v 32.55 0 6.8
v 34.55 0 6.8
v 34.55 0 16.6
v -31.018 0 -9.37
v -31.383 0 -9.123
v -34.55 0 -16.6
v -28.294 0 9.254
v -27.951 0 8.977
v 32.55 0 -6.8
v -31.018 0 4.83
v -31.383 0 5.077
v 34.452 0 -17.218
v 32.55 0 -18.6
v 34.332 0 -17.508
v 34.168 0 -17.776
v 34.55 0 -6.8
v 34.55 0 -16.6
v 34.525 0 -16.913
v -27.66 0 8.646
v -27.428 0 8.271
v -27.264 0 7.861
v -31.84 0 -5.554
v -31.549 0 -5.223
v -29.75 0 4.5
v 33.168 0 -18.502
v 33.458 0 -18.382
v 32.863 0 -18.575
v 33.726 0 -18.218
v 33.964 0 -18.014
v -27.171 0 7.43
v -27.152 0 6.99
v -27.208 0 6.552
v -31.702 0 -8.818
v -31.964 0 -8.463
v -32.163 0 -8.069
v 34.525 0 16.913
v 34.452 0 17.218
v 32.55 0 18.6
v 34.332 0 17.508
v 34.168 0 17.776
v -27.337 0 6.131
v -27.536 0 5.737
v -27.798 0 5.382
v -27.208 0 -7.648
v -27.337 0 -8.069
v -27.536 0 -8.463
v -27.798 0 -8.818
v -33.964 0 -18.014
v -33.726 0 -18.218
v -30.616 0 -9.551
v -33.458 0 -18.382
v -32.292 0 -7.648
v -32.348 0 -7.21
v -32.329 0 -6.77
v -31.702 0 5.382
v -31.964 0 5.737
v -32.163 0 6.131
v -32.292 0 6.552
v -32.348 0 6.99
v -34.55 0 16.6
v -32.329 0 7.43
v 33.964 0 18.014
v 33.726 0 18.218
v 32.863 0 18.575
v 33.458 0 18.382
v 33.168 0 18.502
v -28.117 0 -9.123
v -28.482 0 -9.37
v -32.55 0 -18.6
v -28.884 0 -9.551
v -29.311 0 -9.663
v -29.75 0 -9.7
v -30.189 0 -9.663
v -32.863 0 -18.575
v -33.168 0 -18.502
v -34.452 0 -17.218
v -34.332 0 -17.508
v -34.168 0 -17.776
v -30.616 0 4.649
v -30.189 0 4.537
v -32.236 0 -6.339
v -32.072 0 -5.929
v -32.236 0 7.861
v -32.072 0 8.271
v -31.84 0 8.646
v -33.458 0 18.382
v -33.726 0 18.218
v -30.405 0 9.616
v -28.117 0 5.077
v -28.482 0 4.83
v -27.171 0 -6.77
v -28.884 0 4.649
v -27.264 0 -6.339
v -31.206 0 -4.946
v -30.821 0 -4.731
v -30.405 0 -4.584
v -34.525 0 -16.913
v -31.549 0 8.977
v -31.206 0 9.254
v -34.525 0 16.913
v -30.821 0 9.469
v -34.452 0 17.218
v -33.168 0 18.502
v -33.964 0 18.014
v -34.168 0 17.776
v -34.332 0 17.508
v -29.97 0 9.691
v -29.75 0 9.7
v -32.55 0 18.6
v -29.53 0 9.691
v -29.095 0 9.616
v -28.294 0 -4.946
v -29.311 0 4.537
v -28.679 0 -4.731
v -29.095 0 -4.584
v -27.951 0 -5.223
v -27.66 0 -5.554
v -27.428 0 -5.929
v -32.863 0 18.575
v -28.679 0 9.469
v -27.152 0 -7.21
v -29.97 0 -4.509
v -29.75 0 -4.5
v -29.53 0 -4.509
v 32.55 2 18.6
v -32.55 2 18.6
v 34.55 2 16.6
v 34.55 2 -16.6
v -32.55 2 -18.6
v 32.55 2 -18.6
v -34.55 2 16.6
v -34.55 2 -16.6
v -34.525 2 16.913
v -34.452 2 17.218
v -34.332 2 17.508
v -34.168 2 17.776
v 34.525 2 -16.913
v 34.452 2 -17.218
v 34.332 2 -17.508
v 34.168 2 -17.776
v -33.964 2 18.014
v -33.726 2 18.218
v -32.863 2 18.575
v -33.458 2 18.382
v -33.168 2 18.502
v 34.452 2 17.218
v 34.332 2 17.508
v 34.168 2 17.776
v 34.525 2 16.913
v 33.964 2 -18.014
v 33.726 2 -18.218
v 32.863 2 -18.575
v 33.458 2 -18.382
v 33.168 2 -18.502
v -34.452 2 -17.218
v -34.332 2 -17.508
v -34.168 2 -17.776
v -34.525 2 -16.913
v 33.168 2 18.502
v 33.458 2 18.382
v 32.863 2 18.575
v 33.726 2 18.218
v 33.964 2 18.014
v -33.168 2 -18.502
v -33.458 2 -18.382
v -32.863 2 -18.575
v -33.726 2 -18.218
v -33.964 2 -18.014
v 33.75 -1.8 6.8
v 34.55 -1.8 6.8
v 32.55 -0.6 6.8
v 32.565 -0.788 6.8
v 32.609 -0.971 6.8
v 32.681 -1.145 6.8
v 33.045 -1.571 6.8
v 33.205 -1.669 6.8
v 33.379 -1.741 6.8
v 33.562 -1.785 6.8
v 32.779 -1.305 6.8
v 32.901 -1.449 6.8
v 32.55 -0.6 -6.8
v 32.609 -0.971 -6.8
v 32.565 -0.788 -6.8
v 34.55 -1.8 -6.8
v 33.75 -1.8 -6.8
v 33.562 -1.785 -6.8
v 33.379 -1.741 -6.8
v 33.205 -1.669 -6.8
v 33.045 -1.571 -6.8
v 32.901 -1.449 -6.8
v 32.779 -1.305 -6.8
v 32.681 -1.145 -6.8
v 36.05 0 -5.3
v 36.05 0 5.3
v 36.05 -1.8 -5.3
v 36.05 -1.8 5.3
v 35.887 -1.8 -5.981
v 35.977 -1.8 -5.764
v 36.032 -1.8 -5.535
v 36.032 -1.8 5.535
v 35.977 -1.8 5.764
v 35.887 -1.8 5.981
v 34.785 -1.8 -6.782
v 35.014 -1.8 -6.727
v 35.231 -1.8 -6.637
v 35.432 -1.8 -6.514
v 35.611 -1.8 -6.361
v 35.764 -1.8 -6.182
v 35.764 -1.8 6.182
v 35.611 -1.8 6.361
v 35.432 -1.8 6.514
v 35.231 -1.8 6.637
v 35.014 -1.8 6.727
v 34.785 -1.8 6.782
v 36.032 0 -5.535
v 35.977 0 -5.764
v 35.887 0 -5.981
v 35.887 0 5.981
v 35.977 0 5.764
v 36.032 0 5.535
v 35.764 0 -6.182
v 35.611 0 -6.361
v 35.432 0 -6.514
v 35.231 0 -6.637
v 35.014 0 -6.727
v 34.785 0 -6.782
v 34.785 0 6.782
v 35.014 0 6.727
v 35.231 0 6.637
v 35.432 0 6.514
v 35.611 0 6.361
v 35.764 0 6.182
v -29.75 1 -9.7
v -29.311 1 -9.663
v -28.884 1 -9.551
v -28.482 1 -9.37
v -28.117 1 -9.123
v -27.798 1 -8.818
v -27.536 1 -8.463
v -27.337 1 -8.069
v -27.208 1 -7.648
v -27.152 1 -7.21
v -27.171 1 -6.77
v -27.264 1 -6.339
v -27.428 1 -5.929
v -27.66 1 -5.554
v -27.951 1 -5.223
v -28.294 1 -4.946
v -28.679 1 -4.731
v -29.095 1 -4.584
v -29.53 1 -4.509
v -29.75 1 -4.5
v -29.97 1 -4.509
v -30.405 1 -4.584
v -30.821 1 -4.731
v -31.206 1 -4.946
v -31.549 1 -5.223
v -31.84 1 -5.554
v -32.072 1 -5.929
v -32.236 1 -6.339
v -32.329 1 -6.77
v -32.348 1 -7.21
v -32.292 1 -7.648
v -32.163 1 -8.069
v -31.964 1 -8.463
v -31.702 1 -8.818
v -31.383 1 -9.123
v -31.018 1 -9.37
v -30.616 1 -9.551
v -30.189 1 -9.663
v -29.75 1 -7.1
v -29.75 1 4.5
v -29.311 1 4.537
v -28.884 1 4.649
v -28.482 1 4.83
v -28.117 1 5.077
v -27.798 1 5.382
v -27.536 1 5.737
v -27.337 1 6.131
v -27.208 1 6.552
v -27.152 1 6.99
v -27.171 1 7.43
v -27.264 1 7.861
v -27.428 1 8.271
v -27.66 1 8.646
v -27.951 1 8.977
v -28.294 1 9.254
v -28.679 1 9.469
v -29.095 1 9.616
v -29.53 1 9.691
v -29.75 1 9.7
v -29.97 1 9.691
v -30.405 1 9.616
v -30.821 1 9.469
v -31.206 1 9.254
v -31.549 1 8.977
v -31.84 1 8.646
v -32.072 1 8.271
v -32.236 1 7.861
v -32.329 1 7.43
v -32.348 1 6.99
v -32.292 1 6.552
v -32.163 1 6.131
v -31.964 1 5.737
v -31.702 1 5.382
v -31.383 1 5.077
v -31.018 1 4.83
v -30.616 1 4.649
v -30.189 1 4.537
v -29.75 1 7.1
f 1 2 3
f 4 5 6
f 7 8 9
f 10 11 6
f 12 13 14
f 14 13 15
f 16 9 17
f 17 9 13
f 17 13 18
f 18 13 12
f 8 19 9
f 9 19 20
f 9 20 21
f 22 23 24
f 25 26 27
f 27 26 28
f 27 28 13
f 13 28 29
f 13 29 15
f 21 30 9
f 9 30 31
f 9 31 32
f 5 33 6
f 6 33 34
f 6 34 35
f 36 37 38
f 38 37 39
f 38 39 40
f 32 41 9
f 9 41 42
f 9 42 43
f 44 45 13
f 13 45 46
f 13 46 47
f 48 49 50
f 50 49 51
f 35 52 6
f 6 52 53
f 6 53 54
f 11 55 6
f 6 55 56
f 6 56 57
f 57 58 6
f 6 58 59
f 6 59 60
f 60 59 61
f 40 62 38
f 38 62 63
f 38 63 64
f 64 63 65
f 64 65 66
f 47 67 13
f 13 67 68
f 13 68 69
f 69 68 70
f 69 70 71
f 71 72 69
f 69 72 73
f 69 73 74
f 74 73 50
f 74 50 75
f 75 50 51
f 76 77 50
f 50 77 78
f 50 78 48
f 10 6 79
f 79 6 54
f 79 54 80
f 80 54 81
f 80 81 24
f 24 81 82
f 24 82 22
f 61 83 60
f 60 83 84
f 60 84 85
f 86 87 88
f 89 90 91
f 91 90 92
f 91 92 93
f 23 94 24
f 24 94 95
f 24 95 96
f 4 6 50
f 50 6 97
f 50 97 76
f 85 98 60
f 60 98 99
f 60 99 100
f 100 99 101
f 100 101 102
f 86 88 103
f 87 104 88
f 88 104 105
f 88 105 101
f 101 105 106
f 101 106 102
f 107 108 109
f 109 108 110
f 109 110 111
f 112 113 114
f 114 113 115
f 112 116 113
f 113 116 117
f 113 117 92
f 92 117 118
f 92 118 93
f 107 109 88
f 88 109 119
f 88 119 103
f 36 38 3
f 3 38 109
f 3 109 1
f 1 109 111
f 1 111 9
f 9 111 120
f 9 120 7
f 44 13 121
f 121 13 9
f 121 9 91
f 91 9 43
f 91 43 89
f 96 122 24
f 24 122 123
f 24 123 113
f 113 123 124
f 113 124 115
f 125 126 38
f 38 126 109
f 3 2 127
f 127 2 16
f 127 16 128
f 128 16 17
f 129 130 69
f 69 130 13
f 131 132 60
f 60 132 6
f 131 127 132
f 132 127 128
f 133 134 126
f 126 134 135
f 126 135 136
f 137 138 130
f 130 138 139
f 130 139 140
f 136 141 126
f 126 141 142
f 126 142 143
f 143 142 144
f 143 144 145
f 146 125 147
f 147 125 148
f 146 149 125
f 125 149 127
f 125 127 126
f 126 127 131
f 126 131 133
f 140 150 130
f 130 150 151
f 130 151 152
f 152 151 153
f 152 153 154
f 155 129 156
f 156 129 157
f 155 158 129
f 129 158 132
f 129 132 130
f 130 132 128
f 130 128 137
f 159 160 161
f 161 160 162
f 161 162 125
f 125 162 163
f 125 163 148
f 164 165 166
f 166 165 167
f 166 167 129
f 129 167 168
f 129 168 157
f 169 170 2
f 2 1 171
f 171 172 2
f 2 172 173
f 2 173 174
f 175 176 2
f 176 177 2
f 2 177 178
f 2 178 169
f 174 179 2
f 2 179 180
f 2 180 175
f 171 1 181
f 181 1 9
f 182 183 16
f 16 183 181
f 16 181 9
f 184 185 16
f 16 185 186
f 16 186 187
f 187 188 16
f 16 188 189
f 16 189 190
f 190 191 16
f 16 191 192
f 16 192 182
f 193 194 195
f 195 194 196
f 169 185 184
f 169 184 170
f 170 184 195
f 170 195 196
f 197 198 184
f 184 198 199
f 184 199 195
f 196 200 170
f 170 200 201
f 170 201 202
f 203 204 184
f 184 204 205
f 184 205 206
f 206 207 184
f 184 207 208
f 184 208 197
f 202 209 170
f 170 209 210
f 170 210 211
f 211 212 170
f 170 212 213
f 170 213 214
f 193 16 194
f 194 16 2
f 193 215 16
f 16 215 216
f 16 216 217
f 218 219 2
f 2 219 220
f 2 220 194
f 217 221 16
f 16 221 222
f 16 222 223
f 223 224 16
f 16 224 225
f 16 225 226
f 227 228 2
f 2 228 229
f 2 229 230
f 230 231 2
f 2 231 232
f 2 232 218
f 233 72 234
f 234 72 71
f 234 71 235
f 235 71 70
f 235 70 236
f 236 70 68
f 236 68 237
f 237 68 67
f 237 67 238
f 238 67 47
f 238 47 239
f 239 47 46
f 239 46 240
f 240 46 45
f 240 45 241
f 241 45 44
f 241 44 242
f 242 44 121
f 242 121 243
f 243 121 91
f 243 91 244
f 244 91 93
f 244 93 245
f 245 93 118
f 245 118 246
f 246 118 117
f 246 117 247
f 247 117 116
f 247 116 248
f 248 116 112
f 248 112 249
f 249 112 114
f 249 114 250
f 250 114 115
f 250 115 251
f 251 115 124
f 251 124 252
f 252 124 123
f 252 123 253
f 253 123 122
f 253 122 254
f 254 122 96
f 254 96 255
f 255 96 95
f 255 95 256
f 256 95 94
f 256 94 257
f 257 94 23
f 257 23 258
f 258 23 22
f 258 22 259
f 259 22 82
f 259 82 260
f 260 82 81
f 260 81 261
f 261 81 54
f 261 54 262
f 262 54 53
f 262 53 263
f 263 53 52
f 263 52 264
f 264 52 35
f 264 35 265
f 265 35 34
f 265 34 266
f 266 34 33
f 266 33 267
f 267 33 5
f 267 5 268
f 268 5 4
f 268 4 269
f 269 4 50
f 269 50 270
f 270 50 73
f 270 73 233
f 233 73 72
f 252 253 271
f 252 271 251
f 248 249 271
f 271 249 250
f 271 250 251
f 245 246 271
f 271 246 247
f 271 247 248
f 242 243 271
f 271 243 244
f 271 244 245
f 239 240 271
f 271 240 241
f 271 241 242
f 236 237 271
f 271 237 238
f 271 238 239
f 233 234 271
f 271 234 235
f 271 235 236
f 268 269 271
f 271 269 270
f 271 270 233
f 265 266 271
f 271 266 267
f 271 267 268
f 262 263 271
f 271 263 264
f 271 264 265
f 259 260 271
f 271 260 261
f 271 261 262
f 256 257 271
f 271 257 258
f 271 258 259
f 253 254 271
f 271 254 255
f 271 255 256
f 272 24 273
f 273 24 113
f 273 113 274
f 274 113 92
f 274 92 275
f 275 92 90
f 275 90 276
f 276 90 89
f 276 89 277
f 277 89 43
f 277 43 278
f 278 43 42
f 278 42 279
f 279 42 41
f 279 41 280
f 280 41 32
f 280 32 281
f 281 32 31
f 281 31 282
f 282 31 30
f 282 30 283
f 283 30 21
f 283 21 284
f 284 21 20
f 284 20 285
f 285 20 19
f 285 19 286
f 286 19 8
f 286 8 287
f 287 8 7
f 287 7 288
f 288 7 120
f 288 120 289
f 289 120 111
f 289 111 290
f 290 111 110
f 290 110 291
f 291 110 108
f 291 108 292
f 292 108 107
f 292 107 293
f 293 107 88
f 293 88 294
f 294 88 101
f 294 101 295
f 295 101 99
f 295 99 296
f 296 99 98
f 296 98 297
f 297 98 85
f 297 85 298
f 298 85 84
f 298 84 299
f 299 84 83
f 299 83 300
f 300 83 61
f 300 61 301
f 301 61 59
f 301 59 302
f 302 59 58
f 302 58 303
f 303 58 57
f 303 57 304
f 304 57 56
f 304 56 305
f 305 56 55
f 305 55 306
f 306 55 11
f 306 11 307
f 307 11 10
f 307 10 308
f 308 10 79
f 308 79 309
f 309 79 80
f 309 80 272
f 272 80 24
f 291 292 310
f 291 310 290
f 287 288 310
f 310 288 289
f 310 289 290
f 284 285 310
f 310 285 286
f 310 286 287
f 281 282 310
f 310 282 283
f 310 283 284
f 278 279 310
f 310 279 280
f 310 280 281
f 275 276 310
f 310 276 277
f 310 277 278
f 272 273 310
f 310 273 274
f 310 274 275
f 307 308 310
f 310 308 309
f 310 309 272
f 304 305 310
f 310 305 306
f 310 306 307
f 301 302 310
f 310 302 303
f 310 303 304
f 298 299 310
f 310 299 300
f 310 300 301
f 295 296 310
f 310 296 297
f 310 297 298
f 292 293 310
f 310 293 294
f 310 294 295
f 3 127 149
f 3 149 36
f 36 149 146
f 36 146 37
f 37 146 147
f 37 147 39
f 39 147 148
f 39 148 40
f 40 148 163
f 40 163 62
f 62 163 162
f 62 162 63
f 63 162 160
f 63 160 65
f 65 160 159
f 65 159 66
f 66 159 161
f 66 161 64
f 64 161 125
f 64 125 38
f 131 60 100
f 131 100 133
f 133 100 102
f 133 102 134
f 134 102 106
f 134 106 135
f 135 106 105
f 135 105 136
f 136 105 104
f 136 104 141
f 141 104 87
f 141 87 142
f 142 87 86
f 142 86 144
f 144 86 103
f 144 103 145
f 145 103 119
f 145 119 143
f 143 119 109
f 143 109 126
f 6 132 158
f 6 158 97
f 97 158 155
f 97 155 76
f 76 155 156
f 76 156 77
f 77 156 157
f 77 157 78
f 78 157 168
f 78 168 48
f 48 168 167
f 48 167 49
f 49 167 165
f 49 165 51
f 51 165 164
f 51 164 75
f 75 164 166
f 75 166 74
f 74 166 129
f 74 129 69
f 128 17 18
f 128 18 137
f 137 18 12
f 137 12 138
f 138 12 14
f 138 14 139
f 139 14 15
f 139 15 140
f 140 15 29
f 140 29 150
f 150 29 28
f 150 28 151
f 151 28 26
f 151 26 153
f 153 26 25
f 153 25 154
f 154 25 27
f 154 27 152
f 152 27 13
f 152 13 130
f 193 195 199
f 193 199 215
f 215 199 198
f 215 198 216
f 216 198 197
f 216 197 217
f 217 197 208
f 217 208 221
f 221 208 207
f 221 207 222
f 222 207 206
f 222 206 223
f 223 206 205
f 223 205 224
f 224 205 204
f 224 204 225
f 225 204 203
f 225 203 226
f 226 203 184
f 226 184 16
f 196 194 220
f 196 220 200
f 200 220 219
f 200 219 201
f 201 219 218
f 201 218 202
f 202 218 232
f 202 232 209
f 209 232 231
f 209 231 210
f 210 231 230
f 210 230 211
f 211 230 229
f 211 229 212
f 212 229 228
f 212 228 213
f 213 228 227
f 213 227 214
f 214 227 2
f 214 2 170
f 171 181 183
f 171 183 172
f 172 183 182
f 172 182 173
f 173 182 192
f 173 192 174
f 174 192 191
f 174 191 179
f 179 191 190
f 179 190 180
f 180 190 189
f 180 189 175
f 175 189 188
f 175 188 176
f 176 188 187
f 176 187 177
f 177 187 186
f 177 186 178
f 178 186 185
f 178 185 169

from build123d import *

# Parameters (mm, degrees)
SKETCH_1_W          = 69.1
SKETCH_1_H          = 37.2
EXTRUDE_1_DEPTH     = 2
SKETCH_1_3_W        = 3.5
SKETCH_1_3_H        = 13.6
EXTRUDE_2_DEPTH     = 1.8
SKETCH_1_5_R        = 2.6
CUT_EXTRUDE_1_DEPTH = 1
FILLET_1_R          = 2
FILLET_2_R          = 1.5
FILLET_3_R          = 1.2


with BuildPart() as part:
    # 草图1 → 凸台-拉伸1 (new body)
    with BuildSketch(Plane(origin=(0, 0, 0), x_dir=(1, 0, 0), z_dir=(0, 1, 0))):
        Rectangle(SKETCH_1_W, SKETCH_1_H)
    extrude(amount=EXTRUDE_1_DEPTH)

    # 草图1<3> → 凸台-拉伸2 (add)
    with BuildSketch(Plane(origin=(0, 0, 0), x_dir=(1, 0, 0), z_dir=(0, 1, 0))):
        with Locations((34.3, 0)):
            Rectangle(SKETCH_1_3_W, SKETCH_1_3_H)
    extrude(amount=-EXTRUDE_2_DEPTH)

    # 草图1<5> → 切除-拉伸1 (cut)
    with BuildSketch(Plane(origin=(0, 0, 0), x_dir=(1, 0, 0), z_dir=(0, 1, 0))):
        with Locations((-29.75, 7.1)):
            Circle(SKETCH_1_5_R)
        with Locations((-29.75, -7.1)):
            Circle(SKETCH_1_5_R)
    extrude(amount=CUT_EXTRUDE_1_DEPTH, mode=Mode.SUBTRACT)

    # 圆角1
    fillet_1_edges = [part.edges().sort_by_distance(p)[0] for p in [
        (34.55, 1, 18.6),
        (-34.55, 1, 18.6),
        (-34.55, 1, -18.6),
        (34.55, 1, -18.6),
    ]]
    fillet(fillet_1_edges, radius=FILLET_1_R)

    # 圆角2
    fillet_2_edges = [part.edges().sort_by_distance(p)[0] for p in [
        (36.05, -0.9, -6.8),
        (36.05, -0.9, 6.8),
    ]]
    fillet(fillet_2_edges, radius=FILLET_2_R)

    # 圆角3
    fillet_3_edges = [part.edges().sort_by_distance(p)[0] for p in [
        (32.55, -1.8, 0),
    ]]
    fillet(fillet_3_edges, radius=FILLET_3_R)


solid = part.part
